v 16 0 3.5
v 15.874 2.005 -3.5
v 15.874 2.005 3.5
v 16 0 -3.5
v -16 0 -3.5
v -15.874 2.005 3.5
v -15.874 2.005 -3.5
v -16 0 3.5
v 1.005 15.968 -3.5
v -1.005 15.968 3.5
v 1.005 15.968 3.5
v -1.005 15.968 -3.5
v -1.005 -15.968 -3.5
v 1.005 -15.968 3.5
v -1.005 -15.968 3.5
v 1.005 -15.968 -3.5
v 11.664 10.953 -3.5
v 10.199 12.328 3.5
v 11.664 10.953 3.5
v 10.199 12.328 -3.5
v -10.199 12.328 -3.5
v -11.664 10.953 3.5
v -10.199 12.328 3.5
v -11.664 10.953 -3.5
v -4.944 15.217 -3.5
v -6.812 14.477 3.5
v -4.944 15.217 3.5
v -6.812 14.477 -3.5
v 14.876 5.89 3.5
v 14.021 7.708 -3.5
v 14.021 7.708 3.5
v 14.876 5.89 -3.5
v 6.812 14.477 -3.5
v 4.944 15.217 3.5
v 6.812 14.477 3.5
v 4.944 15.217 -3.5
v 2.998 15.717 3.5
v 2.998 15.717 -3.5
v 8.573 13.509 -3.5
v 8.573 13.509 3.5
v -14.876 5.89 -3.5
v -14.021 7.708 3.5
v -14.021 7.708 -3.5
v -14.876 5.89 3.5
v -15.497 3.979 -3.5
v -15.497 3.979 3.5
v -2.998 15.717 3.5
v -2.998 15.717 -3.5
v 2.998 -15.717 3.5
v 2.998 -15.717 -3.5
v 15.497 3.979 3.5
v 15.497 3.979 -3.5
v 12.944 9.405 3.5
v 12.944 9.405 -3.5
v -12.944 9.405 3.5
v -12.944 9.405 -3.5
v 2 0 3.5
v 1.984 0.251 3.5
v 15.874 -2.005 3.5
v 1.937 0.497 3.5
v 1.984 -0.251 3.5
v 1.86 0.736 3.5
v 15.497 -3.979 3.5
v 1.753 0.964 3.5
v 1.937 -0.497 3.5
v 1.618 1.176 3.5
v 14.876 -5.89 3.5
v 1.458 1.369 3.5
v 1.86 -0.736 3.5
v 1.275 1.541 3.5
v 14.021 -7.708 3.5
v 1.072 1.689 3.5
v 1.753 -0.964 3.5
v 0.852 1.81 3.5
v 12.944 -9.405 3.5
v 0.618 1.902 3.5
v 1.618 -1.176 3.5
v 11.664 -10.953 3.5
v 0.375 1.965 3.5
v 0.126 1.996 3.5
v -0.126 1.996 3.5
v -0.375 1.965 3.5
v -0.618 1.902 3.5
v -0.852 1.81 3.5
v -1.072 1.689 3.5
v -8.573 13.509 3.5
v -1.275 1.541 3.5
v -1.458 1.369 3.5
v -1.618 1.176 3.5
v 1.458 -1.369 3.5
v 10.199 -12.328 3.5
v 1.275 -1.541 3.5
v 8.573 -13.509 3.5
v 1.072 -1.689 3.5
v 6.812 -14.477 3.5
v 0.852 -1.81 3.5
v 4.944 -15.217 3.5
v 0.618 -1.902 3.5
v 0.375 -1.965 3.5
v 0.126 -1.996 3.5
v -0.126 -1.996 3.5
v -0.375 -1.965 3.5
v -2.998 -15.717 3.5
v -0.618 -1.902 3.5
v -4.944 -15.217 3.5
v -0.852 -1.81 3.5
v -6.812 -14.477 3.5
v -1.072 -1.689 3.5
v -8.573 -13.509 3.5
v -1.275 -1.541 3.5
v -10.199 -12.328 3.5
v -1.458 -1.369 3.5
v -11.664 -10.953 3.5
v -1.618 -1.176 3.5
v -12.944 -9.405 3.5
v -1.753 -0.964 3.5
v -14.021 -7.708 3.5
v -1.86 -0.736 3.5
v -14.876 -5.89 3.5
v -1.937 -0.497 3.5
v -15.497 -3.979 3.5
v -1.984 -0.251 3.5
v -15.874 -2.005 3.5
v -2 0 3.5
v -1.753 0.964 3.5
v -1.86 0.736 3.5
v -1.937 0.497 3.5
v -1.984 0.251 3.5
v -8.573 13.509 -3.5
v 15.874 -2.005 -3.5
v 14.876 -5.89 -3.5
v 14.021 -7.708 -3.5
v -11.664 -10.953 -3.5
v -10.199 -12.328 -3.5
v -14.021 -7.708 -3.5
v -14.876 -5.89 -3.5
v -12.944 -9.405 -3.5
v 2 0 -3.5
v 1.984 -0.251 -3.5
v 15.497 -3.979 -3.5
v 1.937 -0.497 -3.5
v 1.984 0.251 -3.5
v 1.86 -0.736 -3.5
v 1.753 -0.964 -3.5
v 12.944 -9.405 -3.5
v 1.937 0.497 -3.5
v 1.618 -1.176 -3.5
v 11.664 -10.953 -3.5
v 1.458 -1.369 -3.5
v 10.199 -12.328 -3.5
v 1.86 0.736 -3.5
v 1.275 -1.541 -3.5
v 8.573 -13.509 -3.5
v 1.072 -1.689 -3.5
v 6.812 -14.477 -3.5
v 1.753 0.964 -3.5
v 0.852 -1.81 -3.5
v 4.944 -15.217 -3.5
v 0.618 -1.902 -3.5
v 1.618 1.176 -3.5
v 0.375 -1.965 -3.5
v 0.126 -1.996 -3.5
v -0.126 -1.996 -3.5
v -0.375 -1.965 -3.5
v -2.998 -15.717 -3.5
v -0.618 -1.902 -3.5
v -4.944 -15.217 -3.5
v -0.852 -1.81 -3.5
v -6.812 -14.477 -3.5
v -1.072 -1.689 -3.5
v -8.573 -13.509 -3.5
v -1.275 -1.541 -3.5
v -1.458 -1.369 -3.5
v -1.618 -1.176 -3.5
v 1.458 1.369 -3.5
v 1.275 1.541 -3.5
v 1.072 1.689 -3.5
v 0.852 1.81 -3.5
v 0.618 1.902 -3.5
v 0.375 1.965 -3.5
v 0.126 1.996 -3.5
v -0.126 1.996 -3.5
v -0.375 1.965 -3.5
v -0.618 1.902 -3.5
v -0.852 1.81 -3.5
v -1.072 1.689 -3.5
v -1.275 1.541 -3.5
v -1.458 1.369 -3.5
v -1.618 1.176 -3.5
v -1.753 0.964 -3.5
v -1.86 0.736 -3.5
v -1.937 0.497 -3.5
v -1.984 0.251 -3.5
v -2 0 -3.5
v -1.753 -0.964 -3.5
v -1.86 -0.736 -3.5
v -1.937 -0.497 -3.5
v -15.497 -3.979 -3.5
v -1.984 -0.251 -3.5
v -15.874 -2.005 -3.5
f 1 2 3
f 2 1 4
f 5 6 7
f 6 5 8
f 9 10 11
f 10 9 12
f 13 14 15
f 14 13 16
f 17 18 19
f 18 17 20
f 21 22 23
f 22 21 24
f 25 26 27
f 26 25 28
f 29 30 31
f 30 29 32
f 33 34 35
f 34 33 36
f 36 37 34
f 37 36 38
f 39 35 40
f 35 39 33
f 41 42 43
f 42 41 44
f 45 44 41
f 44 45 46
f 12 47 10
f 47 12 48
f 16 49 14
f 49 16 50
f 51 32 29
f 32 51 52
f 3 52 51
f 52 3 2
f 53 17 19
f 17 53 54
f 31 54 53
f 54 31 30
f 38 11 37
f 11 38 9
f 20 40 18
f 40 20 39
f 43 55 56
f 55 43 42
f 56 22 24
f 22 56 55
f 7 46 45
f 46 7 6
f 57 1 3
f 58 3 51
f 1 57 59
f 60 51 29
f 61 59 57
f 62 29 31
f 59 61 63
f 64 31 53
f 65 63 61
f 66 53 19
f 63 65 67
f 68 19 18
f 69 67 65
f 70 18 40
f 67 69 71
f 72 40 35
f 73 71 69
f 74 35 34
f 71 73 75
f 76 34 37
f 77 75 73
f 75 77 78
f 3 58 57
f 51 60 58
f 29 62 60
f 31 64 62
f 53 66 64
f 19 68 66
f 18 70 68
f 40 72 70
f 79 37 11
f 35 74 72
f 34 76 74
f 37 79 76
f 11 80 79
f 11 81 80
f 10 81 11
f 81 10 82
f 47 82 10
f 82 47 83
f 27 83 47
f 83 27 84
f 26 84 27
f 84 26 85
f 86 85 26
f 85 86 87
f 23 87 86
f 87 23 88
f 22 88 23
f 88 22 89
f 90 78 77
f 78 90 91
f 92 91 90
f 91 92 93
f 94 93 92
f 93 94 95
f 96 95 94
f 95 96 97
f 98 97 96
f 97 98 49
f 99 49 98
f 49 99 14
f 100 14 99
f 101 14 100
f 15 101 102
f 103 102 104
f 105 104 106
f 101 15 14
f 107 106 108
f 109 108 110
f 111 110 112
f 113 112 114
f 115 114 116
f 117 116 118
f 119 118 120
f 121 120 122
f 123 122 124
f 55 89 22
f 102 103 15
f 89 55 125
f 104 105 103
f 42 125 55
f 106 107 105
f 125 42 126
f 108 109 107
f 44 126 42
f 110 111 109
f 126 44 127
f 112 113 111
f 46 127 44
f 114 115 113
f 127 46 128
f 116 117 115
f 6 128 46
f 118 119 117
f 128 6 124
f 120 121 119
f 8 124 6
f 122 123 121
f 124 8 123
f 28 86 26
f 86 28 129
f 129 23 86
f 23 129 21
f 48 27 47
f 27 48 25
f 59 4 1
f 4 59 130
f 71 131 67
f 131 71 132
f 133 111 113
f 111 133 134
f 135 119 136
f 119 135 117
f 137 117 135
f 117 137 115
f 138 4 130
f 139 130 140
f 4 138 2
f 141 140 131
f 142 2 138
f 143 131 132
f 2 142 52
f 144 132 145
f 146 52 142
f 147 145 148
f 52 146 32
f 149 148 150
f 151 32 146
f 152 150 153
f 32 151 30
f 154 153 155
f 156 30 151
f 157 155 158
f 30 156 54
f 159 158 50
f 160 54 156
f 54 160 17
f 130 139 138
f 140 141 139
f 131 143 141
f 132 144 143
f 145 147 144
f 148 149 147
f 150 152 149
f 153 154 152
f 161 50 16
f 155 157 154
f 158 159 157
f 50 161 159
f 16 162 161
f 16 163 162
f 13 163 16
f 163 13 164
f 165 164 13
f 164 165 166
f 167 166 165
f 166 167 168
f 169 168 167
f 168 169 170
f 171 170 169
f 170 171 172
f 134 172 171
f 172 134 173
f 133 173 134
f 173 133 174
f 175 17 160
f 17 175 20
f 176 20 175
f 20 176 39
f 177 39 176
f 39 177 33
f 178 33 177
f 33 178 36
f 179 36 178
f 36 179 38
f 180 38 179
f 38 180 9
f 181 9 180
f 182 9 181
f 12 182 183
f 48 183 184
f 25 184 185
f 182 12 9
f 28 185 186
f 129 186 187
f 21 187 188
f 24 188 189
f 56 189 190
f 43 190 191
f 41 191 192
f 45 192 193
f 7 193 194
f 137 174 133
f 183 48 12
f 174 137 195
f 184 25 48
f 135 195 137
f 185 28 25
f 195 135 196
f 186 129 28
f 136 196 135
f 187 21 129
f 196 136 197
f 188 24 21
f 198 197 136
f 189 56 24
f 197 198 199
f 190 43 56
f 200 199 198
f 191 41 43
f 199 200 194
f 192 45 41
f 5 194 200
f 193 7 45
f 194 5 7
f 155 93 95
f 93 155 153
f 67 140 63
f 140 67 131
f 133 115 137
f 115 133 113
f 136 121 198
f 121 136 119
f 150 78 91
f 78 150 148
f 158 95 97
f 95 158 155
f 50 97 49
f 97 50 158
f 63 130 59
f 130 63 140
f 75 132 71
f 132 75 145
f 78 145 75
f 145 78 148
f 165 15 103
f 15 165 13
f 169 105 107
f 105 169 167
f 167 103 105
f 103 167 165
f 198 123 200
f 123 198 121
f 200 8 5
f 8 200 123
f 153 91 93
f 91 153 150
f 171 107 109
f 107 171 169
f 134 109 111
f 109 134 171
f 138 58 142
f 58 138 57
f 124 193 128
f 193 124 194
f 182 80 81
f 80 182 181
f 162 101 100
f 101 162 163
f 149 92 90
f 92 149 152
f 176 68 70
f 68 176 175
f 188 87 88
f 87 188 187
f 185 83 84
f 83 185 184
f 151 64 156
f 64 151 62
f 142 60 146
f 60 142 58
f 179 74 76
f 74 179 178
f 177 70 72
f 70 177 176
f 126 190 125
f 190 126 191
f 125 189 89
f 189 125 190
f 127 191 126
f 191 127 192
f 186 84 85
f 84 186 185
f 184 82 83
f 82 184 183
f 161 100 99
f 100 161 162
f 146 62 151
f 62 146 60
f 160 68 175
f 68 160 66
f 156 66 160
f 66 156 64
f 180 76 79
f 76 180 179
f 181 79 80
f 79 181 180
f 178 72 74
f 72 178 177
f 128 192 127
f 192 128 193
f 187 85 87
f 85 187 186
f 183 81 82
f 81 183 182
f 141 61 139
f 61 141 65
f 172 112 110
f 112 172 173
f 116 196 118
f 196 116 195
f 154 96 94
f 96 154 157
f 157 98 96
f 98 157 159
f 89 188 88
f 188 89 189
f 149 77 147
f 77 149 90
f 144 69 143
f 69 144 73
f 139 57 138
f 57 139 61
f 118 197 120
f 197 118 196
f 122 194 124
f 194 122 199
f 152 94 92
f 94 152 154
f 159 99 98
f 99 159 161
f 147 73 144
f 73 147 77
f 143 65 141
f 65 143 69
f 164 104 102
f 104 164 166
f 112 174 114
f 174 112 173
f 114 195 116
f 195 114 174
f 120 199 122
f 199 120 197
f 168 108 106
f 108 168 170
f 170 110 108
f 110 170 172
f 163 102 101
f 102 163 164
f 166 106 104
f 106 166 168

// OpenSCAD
$fn = 50;


difference() {
	union() {
		translate(v = [0, 0, -3.5000000000]) {
			cylinder(h = 7, r = 16.0000000000);
		}
	}
	union() {
		translate(v = [0, 0, -100.0000000000]) {
			cylinder(h = 200, r = 2);
		}
	}
}
